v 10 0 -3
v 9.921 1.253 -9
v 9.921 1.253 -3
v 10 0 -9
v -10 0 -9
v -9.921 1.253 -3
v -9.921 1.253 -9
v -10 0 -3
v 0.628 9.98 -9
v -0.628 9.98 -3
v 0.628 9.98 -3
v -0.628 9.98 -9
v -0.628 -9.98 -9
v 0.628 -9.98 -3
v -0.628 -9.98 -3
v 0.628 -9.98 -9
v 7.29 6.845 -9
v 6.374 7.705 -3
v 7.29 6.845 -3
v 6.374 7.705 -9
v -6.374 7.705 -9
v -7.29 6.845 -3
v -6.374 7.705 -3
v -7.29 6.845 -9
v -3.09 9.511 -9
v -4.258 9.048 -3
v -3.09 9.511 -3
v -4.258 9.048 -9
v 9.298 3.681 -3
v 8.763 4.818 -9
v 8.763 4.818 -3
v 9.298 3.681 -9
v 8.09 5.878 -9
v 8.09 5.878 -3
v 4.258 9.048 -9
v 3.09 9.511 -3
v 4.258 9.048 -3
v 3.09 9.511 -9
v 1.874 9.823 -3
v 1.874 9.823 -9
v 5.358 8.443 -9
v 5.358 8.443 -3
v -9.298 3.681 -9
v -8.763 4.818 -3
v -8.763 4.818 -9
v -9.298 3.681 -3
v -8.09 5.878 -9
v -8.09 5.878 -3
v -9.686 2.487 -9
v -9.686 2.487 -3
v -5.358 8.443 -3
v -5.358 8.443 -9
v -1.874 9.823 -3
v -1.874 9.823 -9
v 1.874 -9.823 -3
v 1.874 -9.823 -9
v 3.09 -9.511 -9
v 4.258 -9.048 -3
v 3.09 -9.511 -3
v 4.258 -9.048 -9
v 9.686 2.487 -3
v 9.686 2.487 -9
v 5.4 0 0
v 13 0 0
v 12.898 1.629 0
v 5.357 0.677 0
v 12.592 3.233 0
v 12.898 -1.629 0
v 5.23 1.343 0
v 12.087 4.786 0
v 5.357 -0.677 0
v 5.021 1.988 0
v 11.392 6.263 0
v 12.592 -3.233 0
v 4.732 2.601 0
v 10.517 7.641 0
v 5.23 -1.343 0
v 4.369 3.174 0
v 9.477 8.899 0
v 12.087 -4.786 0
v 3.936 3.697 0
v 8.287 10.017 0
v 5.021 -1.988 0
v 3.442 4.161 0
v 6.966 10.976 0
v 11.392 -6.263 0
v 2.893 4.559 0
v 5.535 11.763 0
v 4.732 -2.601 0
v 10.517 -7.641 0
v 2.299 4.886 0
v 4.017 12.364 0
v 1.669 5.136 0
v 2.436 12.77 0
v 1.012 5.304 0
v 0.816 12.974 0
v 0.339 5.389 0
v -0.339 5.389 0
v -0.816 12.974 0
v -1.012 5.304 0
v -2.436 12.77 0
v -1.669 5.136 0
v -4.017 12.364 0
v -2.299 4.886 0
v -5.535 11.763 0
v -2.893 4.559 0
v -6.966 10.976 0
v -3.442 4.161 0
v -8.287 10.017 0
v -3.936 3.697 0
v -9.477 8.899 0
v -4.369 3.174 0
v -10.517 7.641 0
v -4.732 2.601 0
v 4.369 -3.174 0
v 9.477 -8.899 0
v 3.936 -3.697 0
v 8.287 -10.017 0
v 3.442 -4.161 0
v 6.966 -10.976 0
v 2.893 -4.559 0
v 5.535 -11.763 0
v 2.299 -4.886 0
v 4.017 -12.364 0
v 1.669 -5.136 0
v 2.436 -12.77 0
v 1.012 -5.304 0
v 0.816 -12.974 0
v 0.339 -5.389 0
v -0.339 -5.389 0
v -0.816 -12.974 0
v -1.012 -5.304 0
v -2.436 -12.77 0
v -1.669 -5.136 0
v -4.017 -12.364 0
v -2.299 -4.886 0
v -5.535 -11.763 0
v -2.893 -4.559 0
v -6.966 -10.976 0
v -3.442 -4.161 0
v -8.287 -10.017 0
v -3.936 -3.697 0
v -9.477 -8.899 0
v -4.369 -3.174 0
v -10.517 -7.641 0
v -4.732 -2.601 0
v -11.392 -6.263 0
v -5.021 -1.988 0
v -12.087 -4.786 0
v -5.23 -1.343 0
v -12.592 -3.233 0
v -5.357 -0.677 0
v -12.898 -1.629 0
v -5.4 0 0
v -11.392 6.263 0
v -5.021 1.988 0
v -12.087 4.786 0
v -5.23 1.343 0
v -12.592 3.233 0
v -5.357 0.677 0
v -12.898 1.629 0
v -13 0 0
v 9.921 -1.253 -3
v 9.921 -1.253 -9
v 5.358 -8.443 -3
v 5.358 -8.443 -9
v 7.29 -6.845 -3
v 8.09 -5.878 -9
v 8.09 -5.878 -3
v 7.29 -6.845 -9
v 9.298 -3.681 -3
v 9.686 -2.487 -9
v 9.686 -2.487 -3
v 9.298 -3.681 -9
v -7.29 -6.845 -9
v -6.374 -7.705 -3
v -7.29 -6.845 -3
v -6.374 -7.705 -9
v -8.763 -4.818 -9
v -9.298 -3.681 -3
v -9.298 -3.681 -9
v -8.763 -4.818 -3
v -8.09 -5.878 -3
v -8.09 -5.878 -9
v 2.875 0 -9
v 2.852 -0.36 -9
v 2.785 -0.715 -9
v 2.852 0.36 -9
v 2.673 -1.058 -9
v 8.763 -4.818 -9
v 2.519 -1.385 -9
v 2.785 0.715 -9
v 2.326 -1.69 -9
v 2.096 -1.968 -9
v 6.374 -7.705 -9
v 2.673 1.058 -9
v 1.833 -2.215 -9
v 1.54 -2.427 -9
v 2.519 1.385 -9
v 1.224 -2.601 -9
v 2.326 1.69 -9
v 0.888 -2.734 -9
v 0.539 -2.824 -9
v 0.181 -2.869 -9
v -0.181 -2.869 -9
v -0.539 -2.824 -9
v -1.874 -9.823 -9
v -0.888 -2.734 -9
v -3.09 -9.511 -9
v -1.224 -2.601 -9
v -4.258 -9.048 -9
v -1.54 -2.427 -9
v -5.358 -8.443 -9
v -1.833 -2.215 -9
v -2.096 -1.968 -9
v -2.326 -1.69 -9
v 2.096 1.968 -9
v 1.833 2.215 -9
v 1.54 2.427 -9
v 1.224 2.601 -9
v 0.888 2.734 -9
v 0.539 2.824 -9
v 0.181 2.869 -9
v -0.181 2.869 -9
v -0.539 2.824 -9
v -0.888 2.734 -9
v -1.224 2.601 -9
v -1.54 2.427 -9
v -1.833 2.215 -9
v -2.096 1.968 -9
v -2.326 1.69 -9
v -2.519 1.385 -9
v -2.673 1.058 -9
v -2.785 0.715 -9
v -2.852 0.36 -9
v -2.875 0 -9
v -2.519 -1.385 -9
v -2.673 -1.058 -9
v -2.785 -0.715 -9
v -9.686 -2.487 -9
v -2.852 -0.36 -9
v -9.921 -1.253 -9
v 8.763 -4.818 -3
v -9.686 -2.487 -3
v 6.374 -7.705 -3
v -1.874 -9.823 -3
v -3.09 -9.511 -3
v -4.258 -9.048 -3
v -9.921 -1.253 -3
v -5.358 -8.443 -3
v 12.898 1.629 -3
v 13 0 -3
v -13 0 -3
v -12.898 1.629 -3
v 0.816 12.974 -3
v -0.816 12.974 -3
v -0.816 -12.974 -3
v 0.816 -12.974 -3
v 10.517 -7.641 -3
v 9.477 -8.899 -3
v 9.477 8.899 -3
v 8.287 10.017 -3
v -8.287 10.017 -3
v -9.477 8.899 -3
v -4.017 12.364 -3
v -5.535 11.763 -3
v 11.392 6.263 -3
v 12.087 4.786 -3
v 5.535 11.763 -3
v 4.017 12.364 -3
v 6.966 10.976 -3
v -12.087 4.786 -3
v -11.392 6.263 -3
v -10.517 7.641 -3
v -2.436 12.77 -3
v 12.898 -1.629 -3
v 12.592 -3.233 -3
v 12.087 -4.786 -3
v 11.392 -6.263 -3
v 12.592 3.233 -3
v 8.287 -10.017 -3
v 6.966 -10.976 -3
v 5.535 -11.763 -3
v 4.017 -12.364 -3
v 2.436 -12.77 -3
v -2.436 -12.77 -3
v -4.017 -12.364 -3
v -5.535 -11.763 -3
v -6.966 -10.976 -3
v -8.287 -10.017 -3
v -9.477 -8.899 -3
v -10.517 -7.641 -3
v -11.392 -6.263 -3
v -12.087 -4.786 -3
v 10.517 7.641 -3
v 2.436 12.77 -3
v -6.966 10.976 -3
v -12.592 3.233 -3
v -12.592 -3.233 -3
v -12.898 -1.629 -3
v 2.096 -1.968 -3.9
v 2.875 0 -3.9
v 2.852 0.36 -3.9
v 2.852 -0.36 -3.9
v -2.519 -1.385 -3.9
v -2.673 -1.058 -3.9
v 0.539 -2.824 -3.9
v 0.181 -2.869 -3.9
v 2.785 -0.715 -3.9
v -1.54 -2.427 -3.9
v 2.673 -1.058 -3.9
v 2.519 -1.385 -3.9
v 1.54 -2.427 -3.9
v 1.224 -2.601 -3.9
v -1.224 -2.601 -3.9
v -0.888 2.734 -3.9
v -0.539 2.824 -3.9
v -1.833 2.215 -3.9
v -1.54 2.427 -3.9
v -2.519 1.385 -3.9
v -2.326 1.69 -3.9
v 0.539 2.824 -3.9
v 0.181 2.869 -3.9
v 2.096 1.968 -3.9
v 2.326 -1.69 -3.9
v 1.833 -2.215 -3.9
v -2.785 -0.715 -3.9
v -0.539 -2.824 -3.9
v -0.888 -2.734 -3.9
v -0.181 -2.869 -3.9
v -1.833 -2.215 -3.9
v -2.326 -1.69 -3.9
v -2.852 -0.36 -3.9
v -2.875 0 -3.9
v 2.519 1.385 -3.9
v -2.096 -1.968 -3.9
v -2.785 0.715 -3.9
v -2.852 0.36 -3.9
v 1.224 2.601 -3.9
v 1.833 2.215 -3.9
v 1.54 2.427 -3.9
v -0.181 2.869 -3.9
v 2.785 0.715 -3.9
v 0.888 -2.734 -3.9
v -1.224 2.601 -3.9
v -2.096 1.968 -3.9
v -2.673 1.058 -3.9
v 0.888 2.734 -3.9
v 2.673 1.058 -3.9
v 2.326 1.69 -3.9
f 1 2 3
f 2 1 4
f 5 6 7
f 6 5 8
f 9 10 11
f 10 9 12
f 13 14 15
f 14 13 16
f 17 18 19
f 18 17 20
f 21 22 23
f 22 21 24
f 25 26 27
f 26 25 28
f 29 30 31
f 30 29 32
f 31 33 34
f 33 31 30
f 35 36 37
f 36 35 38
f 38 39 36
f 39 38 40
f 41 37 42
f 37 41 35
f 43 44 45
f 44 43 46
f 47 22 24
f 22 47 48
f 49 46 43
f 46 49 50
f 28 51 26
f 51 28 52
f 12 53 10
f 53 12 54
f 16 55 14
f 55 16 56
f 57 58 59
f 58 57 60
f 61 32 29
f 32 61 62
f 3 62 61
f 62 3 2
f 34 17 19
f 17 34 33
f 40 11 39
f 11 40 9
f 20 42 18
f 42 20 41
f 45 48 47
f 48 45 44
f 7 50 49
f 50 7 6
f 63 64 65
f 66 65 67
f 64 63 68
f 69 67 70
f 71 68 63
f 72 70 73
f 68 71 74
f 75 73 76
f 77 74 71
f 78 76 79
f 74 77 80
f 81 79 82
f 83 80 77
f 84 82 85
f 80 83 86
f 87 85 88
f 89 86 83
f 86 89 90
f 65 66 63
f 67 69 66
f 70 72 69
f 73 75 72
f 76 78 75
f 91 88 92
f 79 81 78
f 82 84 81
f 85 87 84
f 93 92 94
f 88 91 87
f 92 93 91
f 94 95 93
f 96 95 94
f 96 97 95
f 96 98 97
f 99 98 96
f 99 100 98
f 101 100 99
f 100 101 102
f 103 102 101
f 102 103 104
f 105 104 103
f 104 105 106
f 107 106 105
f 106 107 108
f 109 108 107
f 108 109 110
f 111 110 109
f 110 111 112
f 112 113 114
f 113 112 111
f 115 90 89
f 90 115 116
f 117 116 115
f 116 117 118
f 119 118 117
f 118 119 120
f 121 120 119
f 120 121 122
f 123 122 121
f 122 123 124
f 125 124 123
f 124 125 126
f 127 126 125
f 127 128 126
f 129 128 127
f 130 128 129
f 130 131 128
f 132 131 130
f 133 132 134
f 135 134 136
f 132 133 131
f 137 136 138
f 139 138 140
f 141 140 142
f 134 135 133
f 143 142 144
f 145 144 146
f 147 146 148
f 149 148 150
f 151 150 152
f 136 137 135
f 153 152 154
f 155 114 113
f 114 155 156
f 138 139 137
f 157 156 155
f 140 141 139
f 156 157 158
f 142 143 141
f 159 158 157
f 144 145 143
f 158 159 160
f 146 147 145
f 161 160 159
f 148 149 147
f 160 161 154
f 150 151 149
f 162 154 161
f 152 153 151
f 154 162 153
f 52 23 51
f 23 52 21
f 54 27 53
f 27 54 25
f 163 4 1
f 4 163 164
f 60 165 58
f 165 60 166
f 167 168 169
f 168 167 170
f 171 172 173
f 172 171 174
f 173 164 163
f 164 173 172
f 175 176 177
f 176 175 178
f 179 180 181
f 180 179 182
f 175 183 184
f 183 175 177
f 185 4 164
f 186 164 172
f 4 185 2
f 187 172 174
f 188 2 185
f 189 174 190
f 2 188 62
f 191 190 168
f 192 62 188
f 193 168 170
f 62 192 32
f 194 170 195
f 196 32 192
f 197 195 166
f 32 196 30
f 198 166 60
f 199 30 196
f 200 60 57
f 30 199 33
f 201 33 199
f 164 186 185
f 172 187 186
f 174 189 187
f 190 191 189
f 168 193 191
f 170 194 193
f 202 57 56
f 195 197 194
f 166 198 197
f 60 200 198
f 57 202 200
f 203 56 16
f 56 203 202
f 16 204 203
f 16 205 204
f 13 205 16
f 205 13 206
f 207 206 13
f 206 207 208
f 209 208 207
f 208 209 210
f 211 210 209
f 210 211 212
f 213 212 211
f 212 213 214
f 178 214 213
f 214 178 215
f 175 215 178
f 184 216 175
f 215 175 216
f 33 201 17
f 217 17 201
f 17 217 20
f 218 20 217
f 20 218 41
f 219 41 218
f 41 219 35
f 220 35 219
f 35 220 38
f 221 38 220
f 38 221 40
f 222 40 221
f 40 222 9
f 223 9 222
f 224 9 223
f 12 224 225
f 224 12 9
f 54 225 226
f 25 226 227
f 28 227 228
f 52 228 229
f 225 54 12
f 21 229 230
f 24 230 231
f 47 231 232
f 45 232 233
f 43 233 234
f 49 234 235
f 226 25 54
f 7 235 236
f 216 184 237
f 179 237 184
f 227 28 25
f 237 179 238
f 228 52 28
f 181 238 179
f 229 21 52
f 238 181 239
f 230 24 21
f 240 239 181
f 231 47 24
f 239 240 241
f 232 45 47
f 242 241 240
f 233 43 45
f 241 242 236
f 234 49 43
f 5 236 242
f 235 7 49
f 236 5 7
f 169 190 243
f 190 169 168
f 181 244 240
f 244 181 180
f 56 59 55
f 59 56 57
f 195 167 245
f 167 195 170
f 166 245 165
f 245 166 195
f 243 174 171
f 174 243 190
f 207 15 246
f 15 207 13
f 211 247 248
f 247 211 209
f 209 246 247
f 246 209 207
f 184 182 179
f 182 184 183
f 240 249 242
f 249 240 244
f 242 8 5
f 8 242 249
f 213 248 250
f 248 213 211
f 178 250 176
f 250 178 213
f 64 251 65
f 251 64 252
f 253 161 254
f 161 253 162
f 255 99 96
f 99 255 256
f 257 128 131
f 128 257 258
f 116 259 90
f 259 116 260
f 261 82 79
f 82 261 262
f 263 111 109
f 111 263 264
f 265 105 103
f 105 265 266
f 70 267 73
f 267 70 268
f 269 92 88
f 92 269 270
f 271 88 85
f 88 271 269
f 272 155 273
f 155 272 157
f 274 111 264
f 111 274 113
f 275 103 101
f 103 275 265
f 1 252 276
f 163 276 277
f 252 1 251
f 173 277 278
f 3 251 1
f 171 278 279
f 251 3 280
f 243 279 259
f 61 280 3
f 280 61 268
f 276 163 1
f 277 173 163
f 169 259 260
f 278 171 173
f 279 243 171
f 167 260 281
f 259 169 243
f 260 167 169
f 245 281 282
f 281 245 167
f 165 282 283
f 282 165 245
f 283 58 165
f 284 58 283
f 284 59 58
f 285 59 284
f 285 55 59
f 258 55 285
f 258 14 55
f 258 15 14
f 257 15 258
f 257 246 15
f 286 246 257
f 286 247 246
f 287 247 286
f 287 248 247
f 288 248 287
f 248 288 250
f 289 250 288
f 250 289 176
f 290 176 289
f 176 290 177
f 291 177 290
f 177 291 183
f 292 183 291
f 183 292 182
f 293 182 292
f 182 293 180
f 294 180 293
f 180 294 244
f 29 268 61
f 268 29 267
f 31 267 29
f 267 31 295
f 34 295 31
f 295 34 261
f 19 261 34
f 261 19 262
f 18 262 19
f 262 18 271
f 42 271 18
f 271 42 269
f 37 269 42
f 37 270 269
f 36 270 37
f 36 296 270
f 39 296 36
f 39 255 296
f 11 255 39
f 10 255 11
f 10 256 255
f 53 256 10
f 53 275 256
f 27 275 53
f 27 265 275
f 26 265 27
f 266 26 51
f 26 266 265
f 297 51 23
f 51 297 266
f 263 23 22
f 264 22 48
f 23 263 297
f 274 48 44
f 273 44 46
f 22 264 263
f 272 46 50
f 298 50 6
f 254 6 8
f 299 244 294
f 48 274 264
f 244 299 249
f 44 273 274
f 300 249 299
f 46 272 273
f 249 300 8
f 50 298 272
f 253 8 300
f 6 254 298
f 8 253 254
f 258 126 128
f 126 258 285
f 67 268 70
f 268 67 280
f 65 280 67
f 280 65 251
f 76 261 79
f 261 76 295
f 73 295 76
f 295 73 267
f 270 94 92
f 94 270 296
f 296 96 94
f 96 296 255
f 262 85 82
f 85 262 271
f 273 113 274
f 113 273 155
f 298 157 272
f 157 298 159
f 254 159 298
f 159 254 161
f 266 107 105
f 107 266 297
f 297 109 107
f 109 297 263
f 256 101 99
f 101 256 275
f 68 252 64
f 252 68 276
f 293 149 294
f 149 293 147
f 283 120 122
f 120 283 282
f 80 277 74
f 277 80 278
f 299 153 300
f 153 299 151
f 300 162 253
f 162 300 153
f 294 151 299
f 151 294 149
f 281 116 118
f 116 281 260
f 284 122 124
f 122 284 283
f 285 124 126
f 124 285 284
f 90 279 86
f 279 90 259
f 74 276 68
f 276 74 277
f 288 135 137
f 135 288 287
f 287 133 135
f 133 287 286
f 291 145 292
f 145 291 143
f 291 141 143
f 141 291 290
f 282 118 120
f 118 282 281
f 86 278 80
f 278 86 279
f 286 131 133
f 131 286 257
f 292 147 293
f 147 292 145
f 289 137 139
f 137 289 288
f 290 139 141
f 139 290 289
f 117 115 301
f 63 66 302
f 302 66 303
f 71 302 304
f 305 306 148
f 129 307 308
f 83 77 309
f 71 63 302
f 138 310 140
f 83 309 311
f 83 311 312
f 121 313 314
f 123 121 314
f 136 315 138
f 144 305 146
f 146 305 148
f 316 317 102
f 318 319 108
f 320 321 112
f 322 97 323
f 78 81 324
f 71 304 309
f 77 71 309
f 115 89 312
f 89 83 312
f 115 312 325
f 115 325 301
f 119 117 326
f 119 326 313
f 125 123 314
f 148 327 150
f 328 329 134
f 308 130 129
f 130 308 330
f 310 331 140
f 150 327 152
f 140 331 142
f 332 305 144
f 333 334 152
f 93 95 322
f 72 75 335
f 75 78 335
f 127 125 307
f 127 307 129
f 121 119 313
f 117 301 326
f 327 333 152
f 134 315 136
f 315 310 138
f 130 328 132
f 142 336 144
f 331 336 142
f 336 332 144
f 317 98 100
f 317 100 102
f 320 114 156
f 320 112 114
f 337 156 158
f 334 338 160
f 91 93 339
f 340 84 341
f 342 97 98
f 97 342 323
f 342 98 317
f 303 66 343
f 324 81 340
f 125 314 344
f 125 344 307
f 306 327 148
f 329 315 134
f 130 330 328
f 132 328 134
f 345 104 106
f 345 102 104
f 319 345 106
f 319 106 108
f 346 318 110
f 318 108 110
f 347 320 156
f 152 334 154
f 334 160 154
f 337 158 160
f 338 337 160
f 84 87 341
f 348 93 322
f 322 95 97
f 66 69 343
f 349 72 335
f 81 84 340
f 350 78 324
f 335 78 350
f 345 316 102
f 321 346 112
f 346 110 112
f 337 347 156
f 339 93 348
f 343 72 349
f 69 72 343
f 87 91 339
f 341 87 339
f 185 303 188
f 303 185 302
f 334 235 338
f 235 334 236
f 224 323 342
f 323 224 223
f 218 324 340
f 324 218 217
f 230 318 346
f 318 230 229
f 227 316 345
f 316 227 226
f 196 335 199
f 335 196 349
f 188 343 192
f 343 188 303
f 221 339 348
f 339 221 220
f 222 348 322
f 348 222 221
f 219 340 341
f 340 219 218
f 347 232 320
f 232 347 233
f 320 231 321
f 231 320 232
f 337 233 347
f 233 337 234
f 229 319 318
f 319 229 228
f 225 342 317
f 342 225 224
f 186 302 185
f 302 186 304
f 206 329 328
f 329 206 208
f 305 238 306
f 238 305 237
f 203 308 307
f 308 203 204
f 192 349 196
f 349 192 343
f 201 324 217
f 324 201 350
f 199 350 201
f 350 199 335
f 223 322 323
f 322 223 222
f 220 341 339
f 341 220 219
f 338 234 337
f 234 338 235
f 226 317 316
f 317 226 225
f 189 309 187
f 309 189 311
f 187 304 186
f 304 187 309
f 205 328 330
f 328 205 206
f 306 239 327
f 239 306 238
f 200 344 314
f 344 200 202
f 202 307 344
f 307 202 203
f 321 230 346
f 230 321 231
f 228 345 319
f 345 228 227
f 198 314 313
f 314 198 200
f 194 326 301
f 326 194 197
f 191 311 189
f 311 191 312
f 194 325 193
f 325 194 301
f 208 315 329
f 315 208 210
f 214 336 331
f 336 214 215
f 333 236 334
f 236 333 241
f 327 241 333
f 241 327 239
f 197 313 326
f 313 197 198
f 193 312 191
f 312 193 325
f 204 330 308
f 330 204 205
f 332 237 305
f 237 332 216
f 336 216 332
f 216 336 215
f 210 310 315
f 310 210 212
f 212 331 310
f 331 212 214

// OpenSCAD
$fn = 50;


difference() {
	union() {
		translate(v = [0, 0, -9.0000000000]) {
			cylinder(h = 9, r = 10.0000000000);
		}
		translate(v = [0, 0, -3.0000000000]) {
			cylinder(h = 3, r = 13.0000000000);
		}
	}
	union() {
		translate(v = [0, 0, 0]) {
			rotate(a = [0, 0, 0]) {
				difference() {
					union() {
						#translate(v = [0, 0, -9.0000000000]) {
							cylinder(h = 9, r = 2.6000000000);
						}
						#translate(v = [0, 0, -3.9000000000]) {
							cylinder(h = 3.9000000000, r = 10.0000000000, r1 = 2.8750000000, r2 = 5.4000000000);
						}
						#translate(v = [0, 0, -9.0000000000]) {
							cylinder(h = 9, r = 2.8750000000);
						}
						#translate(v = [0, 0, -9.0000000000]) {
							cylinder(h = 9, r = 2.6000000000);
						}
					}
					union();
				}
			}
		}
	}
}
